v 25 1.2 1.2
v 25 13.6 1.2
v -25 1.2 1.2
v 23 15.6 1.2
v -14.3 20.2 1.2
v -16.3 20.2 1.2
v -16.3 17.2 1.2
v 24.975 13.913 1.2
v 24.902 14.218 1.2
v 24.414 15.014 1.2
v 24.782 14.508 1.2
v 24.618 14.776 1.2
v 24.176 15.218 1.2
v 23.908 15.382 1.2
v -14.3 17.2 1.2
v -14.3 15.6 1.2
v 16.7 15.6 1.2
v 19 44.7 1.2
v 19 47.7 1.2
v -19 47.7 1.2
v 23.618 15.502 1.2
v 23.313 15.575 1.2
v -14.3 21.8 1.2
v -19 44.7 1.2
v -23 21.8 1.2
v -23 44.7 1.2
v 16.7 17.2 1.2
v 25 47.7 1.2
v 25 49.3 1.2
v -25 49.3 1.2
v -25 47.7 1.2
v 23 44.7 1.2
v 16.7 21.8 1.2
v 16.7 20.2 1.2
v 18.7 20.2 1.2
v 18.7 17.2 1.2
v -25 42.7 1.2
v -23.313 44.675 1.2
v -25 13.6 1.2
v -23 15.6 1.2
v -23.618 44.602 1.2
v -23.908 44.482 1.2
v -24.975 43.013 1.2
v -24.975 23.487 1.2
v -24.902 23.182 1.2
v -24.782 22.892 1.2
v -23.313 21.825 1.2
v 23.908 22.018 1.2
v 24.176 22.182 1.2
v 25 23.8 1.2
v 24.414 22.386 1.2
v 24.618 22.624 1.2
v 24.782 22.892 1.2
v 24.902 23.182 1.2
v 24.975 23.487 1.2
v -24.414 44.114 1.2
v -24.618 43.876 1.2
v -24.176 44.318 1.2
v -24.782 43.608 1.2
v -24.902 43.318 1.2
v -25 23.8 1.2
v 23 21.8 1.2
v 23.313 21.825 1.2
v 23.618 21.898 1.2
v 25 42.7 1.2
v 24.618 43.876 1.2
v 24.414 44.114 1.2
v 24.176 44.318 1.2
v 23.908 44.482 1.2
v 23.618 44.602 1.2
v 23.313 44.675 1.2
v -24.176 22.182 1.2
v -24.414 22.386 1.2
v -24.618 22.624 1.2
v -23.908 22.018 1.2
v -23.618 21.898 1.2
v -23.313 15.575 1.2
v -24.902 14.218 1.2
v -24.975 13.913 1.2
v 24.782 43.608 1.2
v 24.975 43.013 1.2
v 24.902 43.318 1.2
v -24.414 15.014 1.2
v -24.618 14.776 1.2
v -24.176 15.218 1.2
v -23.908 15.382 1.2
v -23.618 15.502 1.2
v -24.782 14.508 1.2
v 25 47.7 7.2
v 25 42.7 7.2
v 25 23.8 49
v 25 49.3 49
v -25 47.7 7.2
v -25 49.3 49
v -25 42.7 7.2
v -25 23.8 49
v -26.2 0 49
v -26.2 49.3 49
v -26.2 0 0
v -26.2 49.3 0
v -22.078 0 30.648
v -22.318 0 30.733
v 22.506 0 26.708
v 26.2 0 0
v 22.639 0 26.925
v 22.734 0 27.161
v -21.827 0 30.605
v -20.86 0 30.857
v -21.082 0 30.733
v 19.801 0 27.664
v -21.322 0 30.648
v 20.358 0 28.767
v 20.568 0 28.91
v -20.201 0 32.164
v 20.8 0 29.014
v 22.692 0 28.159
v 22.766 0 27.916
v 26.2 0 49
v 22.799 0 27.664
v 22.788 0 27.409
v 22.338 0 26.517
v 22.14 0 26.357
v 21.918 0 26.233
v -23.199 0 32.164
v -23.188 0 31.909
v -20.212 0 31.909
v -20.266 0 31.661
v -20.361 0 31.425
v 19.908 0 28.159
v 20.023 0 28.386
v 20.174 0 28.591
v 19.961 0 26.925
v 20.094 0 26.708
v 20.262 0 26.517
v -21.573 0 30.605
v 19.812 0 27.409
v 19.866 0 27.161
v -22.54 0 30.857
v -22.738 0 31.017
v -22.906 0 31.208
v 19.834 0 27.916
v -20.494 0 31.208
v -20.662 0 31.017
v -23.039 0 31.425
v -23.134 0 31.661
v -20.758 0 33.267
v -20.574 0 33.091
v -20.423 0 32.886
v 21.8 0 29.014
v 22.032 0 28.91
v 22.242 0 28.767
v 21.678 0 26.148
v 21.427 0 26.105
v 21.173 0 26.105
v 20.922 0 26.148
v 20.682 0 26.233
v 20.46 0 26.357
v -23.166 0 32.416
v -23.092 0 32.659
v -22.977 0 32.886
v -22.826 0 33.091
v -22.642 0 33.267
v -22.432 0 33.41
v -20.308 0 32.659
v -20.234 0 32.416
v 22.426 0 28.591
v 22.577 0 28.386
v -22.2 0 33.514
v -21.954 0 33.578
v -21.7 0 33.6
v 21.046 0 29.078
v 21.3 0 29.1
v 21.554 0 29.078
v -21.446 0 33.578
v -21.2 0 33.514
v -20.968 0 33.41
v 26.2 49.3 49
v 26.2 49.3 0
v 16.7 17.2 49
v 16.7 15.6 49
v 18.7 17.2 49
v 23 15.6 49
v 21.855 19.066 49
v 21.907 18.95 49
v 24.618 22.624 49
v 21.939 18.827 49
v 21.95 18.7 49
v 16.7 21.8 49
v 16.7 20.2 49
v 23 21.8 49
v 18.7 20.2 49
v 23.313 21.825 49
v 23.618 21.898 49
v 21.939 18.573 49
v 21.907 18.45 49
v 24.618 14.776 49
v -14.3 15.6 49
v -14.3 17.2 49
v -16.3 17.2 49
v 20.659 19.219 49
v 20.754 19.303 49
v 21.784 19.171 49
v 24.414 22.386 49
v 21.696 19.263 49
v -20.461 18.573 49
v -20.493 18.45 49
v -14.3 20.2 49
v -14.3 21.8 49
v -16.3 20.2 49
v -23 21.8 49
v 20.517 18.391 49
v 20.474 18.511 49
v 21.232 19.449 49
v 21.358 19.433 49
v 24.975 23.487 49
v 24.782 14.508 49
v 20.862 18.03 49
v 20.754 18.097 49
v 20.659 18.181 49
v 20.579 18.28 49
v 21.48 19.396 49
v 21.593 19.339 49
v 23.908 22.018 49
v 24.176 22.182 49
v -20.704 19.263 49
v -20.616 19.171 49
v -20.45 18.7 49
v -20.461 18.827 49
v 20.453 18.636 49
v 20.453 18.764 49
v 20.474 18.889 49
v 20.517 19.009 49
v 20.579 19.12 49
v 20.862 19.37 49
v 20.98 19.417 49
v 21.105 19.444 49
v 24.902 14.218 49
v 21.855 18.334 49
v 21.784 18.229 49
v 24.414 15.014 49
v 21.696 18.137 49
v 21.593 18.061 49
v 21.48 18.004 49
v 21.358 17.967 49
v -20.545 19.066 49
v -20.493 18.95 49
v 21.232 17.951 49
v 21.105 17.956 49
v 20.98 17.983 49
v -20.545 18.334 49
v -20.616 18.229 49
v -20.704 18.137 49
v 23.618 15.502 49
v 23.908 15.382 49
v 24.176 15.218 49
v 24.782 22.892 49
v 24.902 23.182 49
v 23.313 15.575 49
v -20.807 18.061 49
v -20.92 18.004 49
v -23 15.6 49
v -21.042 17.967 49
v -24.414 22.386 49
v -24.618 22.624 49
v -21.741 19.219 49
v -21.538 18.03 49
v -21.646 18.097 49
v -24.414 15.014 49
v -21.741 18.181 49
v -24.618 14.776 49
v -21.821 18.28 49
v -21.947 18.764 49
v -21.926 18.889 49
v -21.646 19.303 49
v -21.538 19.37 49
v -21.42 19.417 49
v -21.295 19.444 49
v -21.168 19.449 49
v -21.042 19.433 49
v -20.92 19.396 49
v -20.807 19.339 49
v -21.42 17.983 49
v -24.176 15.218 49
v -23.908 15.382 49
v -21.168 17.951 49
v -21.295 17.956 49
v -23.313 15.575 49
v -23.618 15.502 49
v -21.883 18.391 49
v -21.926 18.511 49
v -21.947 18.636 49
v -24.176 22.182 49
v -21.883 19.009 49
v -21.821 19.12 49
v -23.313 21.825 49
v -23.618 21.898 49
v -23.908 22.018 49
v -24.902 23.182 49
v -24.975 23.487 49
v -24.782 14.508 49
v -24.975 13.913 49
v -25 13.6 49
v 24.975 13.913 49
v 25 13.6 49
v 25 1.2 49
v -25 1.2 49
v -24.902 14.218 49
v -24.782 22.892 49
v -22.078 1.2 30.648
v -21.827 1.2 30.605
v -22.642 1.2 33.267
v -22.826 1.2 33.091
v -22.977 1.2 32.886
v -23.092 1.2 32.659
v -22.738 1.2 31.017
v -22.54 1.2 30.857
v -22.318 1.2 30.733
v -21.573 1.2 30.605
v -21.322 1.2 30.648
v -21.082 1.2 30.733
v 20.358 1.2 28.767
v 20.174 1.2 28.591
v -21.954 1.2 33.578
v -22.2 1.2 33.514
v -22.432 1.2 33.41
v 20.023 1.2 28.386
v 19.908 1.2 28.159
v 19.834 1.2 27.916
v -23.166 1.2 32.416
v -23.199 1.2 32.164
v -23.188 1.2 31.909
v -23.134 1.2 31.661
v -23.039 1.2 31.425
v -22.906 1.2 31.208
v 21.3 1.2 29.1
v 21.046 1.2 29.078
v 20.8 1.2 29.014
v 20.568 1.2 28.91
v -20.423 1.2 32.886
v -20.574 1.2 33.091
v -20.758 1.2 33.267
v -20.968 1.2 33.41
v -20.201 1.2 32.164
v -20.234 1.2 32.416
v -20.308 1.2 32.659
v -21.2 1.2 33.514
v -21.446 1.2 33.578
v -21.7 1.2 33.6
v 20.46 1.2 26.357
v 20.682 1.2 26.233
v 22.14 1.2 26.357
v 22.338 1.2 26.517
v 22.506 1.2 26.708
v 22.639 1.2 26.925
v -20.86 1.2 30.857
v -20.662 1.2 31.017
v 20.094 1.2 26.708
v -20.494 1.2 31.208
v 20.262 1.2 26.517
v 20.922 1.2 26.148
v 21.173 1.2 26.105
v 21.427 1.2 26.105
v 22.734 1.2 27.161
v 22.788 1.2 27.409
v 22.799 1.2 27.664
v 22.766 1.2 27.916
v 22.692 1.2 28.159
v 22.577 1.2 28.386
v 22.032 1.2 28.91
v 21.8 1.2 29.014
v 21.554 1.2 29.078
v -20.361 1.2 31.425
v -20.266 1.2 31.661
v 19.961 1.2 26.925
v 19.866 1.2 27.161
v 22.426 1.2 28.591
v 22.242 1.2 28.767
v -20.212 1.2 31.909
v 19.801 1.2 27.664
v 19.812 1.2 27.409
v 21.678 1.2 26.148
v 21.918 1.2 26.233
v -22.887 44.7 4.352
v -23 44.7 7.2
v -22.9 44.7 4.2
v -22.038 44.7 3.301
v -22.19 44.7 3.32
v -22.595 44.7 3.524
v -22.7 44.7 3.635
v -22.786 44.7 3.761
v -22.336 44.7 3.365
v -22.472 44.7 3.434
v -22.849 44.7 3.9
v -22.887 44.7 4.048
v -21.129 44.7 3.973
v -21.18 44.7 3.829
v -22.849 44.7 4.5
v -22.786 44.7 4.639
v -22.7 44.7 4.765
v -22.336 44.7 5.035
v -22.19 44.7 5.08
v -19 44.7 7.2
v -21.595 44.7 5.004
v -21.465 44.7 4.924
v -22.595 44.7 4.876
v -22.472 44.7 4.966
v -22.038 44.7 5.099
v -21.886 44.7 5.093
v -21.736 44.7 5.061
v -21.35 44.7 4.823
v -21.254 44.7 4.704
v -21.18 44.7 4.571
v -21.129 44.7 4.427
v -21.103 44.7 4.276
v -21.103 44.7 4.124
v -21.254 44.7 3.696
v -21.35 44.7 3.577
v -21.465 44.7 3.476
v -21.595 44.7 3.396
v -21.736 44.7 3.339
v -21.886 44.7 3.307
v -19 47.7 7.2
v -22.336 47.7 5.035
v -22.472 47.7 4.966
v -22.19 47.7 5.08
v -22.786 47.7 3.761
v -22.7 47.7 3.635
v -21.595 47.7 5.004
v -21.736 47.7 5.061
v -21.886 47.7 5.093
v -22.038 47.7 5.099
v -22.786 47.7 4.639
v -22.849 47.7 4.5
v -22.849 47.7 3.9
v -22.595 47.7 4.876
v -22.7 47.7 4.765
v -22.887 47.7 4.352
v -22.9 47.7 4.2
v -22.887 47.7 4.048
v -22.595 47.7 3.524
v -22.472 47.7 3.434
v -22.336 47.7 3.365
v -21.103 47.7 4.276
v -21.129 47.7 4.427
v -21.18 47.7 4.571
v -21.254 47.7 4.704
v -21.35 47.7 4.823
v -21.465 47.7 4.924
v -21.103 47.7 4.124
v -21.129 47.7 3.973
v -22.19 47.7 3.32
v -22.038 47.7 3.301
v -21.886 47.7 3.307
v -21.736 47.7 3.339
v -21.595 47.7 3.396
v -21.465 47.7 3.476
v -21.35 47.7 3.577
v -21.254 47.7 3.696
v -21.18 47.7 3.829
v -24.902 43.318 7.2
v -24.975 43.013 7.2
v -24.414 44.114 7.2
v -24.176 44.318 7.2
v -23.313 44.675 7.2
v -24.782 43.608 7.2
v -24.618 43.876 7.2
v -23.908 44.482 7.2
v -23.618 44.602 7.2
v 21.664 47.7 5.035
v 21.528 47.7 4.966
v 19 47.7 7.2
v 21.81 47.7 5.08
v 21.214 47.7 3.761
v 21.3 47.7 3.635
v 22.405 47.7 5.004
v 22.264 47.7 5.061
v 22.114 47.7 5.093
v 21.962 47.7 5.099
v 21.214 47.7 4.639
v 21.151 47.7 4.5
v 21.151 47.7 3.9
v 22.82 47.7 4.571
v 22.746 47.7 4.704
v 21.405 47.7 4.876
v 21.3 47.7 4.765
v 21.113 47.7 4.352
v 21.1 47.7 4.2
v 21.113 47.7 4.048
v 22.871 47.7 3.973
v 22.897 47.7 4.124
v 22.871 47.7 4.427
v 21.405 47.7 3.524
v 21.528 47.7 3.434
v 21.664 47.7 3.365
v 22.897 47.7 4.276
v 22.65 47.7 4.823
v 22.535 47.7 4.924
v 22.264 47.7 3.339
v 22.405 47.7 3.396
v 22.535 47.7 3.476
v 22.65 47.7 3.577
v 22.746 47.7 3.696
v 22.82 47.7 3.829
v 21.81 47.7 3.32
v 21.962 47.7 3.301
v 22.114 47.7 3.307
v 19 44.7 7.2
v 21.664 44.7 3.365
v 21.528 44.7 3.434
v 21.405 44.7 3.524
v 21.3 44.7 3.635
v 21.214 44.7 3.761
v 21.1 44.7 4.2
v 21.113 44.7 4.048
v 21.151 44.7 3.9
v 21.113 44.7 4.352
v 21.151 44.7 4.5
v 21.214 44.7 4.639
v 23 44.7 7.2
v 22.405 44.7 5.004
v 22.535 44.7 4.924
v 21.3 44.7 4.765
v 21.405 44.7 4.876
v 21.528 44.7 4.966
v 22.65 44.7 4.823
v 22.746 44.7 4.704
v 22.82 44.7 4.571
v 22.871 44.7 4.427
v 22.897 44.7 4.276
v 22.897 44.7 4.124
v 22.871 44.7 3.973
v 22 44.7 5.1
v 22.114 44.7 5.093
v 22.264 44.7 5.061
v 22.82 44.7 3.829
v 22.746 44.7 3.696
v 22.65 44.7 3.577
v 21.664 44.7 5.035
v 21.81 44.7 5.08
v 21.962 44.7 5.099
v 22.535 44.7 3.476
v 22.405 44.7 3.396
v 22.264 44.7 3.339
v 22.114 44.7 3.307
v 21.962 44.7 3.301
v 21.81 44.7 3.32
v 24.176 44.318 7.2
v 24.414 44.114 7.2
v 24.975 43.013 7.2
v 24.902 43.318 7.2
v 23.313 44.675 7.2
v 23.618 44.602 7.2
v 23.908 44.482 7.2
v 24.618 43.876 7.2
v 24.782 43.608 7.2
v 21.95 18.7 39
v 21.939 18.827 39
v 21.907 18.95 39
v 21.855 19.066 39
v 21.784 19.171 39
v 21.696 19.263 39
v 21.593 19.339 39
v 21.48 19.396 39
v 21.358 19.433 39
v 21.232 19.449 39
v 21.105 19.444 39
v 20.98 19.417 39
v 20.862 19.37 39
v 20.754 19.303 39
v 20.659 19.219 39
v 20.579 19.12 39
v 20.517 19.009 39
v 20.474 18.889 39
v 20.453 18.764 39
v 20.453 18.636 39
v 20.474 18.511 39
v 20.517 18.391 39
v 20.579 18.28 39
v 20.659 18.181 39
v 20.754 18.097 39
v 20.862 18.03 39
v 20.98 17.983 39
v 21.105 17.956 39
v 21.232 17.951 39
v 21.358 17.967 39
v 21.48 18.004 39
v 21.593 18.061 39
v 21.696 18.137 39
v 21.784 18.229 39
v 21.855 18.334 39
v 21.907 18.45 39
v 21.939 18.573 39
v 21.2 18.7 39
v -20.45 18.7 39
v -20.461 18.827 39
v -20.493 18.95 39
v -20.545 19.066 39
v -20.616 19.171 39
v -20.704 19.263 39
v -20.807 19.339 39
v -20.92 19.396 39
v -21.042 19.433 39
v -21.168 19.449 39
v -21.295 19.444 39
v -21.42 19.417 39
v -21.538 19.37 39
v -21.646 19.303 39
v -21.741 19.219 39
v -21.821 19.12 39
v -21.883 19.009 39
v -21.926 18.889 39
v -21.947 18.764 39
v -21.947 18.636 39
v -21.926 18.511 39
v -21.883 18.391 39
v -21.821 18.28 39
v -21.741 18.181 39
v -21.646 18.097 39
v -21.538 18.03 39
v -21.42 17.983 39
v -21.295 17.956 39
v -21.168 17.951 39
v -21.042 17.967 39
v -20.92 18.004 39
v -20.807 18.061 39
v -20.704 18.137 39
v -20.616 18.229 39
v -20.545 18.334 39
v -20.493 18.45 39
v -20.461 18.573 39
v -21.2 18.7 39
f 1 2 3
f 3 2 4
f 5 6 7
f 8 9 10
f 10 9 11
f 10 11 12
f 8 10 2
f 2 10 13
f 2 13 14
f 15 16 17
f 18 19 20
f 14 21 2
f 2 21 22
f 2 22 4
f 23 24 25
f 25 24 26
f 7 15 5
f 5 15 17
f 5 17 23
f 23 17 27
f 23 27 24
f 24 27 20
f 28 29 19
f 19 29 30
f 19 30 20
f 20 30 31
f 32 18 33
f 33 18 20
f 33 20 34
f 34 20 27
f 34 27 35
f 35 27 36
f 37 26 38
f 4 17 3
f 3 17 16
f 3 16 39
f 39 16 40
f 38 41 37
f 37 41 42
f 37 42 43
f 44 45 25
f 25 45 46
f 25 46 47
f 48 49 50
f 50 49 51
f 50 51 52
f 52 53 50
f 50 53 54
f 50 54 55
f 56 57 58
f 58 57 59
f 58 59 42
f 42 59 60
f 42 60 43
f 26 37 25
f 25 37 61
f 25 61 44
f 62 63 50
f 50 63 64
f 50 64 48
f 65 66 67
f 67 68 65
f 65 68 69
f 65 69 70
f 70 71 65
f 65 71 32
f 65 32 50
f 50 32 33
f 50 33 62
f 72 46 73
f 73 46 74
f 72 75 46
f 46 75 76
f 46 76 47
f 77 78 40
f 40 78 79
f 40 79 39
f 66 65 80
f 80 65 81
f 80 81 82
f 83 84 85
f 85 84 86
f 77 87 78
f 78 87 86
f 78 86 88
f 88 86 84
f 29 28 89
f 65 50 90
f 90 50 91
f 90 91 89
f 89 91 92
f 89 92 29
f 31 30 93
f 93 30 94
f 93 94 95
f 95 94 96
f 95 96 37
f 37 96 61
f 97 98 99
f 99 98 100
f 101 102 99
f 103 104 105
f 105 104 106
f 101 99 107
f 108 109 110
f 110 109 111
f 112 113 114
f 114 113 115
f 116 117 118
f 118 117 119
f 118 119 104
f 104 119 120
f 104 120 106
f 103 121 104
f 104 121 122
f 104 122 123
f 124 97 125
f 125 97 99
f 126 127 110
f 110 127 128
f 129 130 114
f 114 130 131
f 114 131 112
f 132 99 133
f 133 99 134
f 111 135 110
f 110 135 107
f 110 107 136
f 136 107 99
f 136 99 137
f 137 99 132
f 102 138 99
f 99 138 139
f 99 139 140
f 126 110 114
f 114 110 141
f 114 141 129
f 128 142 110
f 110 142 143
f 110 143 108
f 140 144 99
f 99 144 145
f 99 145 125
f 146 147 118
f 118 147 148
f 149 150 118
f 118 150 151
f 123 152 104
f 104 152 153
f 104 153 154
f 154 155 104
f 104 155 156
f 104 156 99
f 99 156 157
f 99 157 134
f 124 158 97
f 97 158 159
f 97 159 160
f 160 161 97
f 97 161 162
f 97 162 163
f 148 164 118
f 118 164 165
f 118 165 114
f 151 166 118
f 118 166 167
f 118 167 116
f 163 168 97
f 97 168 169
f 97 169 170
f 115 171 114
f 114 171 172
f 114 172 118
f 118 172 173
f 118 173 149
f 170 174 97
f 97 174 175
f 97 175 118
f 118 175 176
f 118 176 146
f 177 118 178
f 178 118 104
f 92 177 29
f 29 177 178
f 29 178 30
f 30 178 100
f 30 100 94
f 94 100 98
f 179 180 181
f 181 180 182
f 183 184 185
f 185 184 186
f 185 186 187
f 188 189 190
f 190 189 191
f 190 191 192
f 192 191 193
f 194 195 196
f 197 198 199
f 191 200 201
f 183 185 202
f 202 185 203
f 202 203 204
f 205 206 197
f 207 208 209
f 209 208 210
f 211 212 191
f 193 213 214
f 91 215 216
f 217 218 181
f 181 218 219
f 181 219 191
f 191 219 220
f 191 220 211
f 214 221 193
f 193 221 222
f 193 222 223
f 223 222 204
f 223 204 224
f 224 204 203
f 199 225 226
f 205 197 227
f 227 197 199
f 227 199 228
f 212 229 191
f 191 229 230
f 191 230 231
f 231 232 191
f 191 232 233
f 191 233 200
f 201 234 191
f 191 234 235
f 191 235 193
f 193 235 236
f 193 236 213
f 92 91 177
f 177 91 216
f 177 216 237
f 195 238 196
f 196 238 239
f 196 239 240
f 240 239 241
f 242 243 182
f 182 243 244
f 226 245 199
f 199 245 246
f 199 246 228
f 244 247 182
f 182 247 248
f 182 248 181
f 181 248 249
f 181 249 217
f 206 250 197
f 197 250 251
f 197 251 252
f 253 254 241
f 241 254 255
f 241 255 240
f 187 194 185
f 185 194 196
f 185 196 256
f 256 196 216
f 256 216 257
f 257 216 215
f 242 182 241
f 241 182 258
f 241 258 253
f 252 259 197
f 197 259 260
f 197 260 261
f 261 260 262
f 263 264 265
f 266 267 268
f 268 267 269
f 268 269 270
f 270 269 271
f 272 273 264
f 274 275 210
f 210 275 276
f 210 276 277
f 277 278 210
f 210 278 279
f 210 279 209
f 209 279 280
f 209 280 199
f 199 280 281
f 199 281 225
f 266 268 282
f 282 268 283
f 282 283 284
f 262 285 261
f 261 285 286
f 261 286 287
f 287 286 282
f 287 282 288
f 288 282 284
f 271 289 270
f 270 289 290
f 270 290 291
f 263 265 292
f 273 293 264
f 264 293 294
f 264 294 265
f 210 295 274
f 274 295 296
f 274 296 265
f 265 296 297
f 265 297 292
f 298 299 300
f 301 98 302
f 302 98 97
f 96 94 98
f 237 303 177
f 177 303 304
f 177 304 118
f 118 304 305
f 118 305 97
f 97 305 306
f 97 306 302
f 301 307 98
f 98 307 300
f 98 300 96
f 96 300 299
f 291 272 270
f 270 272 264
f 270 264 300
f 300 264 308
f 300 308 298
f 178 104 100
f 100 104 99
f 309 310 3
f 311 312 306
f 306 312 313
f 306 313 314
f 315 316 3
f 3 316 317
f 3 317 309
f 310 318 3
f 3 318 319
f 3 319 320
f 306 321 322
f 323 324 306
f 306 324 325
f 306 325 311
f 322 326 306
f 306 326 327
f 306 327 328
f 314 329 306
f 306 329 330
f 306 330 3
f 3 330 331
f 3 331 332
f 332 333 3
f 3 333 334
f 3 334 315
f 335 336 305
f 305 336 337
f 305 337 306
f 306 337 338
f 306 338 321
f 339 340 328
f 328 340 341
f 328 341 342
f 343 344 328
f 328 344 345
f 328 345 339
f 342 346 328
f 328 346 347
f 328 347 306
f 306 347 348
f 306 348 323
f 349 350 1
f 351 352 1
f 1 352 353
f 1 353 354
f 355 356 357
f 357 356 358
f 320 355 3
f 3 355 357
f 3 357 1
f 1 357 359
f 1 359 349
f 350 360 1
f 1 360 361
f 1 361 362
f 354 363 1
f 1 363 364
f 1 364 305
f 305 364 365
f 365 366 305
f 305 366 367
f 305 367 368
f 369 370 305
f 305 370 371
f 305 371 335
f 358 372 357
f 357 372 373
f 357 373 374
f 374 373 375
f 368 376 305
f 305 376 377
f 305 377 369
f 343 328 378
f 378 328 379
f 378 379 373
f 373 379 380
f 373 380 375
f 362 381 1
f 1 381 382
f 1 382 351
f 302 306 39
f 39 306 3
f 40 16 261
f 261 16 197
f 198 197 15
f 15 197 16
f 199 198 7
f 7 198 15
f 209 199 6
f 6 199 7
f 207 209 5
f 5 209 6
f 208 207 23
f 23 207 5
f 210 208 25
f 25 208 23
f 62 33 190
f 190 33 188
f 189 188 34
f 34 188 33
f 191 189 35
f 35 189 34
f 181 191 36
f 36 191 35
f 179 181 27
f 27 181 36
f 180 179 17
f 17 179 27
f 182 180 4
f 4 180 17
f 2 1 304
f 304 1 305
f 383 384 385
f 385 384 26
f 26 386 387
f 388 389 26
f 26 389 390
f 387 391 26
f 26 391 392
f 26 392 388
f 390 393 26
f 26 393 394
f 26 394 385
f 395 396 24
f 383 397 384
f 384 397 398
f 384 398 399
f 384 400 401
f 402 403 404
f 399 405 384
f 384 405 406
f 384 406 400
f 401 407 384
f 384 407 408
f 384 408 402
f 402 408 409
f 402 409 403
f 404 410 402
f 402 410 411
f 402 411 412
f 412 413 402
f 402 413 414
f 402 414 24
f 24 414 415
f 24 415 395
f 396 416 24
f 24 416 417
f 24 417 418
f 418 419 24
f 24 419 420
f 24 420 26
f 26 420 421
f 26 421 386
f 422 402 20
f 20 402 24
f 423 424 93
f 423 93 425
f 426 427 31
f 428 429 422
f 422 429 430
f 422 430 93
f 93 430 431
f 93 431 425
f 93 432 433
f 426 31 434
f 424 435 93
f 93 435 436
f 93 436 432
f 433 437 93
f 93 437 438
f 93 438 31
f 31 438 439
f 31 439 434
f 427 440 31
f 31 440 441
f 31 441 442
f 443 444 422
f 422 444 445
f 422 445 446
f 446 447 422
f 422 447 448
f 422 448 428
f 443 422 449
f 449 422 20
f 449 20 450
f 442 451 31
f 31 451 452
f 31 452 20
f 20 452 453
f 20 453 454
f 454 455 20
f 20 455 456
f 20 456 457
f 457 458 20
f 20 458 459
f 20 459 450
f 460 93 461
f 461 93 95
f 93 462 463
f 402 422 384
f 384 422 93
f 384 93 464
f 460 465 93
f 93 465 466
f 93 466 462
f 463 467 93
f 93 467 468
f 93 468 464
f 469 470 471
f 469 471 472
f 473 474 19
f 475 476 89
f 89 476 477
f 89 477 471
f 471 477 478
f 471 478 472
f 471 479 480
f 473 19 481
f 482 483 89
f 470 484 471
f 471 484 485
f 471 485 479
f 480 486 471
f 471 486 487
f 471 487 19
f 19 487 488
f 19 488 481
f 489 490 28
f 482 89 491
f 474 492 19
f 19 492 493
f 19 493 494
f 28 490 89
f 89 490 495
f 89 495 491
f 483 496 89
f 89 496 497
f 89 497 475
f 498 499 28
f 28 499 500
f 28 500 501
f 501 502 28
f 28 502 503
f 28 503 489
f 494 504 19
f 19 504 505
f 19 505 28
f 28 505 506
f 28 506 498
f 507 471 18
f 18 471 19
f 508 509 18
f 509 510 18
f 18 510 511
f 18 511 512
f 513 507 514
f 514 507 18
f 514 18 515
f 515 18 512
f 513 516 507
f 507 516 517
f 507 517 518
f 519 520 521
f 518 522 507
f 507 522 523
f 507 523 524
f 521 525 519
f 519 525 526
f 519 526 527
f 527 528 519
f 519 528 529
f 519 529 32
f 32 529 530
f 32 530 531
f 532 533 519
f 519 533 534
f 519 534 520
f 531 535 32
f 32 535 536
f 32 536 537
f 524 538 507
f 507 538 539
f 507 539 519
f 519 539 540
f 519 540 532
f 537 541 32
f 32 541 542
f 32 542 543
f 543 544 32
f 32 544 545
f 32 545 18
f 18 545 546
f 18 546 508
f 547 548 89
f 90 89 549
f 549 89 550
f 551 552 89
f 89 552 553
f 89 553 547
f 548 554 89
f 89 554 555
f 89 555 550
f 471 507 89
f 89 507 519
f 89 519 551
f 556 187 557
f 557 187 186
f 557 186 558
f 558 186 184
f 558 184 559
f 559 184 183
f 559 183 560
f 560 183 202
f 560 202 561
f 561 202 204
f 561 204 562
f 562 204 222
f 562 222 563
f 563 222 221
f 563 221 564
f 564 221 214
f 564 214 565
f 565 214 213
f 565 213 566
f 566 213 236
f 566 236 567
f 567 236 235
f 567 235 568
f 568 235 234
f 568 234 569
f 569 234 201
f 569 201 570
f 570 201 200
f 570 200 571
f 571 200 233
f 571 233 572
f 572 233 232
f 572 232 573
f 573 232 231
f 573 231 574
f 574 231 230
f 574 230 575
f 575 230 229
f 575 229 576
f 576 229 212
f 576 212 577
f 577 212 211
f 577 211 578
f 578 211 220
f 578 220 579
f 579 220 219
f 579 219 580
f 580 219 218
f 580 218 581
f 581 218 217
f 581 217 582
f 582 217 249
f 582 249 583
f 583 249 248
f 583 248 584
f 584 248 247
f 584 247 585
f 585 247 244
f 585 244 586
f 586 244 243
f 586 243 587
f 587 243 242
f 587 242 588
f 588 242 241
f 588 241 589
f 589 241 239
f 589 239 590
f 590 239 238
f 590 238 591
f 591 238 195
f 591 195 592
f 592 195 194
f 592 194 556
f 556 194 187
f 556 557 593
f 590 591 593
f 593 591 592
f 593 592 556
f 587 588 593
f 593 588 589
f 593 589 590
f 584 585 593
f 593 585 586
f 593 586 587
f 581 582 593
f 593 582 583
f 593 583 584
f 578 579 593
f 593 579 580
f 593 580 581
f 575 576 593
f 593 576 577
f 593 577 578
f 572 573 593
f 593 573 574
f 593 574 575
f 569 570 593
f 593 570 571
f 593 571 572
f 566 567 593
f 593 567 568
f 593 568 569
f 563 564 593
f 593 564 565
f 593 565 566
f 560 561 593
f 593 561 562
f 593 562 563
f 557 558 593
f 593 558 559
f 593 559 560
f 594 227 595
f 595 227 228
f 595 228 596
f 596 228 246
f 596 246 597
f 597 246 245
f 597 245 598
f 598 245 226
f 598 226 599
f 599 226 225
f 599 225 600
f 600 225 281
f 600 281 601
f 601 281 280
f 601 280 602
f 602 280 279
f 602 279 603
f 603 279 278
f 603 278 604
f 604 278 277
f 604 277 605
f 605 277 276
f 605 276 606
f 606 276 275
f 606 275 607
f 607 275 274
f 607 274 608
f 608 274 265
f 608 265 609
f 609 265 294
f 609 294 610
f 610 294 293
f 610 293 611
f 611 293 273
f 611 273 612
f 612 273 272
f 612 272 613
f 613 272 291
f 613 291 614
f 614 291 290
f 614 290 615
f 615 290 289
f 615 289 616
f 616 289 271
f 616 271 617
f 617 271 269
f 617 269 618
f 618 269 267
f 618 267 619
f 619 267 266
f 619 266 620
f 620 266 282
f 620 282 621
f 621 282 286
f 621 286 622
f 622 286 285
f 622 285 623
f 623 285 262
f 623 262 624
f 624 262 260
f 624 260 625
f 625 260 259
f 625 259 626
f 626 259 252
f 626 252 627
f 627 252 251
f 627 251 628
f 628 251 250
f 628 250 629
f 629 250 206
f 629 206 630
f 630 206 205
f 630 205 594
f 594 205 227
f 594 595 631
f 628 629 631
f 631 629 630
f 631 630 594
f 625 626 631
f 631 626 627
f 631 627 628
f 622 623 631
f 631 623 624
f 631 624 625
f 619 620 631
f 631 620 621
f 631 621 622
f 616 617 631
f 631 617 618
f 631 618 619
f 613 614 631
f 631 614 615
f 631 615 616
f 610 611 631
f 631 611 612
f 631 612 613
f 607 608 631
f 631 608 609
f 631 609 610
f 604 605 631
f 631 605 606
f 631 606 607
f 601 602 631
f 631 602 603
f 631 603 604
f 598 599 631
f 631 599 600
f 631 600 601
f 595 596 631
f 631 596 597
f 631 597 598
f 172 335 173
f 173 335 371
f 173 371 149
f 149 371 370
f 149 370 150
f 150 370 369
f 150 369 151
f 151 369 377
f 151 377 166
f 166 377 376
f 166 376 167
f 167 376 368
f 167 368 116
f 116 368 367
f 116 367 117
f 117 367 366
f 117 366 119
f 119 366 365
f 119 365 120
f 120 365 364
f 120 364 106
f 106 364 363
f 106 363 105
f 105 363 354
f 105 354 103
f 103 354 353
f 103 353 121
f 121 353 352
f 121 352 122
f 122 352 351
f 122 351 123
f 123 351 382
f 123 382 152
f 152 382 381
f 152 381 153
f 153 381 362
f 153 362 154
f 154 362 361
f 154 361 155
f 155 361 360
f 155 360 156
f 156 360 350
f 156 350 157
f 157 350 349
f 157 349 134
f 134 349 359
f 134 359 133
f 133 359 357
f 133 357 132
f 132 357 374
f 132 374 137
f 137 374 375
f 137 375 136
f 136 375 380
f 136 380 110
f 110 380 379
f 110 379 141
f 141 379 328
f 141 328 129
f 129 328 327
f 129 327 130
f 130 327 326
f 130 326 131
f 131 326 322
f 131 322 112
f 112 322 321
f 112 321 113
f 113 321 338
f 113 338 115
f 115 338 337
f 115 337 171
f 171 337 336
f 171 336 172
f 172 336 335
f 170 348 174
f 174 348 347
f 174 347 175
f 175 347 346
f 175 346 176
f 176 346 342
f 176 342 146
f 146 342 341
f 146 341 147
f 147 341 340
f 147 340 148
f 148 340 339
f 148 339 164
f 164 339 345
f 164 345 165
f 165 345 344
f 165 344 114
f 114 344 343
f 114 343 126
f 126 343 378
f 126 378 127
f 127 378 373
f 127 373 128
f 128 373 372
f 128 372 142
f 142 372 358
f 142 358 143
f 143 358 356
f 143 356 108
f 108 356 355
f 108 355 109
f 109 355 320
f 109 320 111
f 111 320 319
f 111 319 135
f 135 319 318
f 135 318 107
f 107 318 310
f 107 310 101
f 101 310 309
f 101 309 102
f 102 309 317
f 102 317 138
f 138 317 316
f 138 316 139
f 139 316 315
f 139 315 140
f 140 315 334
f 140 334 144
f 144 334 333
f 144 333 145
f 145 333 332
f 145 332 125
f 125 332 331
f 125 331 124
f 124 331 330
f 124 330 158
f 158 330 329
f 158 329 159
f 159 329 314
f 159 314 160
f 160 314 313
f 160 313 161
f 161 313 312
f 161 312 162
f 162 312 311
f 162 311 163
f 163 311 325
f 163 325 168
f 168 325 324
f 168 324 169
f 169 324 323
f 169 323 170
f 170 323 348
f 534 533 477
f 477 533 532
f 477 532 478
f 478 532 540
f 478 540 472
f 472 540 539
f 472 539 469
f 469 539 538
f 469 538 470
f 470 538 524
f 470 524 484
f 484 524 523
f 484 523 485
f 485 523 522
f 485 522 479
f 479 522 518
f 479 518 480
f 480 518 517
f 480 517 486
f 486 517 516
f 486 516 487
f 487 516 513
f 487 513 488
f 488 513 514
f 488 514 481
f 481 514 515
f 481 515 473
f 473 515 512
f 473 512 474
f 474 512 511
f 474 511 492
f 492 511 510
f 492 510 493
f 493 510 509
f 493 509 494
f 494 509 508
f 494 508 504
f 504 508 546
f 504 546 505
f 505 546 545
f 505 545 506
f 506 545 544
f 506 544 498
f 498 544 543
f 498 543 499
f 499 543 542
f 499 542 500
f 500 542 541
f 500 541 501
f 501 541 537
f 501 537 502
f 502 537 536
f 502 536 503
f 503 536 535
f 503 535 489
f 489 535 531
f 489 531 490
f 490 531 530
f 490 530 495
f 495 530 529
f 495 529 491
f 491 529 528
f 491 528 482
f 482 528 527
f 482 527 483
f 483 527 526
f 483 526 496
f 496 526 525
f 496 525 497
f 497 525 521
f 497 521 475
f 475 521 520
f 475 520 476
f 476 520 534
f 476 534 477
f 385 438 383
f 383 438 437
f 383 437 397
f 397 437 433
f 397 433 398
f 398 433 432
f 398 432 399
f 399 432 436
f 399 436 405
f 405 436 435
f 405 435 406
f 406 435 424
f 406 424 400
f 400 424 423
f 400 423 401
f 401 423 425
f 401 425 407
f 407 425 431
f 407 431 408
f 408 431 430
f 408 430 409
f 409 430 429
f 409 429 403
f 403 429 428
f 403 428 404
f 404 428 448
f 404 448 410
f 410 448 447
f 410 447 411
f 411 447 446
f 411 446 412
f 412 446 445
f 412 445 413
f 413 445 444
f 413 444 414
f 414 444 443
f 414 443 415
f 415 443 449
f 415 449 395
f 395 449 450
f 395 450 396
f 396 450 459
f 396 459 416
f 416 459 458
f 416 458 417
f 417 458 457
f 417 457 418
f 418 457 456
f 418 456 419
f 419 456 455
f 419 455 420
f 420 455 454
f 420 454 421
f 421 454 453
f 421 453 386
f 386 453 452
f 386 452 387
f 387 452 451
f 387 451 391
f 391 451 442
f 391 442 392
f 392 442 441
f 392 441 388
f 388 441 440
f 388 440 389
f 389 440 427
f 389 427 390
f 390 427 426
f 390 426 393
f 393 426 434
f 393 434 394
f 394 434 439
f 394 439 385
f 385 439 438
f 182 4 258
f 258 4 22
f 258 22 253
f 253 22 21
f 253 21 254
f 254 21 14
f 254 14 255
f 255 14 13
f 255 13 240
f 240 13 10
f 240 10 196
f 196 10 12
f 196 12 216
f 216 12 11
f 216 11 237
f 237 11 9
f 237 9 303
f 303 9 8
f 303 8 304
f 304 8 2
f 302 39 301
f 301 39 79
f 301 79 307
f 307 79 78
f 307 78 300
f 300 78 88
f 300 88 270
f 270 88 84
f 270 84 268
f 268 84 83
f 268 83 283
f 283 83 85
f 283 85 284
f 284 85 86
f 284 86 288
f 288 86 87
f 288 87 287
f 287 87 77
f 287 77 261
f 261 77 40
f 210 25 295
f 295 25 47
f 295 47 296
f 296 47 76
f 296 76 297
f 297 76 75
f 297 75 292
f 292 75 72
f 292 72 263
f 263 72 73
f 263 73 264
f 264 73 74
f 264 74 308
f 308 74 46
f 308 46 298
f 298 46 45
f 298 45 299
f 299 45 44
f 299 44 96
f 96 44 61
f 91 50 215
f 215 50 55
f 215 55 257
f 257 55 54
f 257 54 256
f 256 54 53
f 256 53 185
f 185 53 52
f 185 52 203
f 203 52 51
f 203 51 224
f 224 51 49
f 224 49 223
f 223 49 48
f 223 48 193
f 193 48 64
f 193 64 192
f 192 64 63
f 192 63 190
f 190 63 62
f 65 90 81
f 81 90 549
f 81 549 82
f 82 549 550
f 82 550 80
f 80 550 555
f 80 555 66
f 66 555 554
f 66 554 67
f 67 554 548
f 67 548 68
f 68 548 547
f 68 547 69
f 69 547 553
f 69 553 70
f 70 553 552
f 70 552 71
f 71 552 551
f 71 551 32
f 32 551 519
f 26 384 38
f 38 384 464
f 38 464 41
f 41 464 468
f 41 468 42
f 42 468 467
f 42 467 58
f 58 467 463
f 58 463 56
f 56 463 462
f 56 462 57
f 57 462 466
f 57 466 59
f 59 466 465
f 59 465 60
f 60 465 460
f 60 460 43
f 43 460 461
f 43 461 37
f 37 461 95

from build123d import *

# Parameters (mm, degrees)
SKETCH1_W           = 52.4
SKETCH1_H           = 49.3
BOSS_EXTRUDE1_DEPTH = 49
CUT_EXTRUDE1_DEPTH  = 47.8
SKETCH3_W           = 6
SKETCH3_H           = 3
BOSS_EXTRUDE2_DEPTH = 6
SKETCH4_R           = 0.75
CUT_EXTRUDE2_DEPTH  = 10
SKETCH5_R           = 1.5
CUT_EXTRUDE3_DEPTH  = 74.491836281
SKETCH6_R           = 0.9
CUT_EXTRUDE4_DEPTH  = 5
FILLET1_R           = 2


with BuildPart() as part:
    # Sketch1 → Boss-Extrude1 (new body)
    with BuildSketch(Plane.XY):
        with Locations((0, 24.65)):
            Rectangle(SKETCH1_W, SKETCH1_H)
    extrude(amount=BOSS_EXTRUDE1_DEPTH)

    # Sketch2 → Cut-Extrude1 (cut)
    with BuildSketch(Plane.XY.offset(49)):
        Polygon((25, 1.2), (25, 15.6), (16.7, 15.6), (16.7, 17.2), (18.7, 17.2), (18.7, 20.2), (16.7, 20.2), (16.7, 21.8), (25, 21.8), (25, 49.3), (-25, 49.3), (-25, 21.8), (-14.3, 21.8), (-14.3, 20.2), (-16.3, 20.2), (-16.3, 17.2), (-14.3, 17.2), (-14.3, 15.6), (-25, 15.6), (-25, 1.2), align=None)
    extrude(amount=-CUT_EXTRUDE1_DEPTH, mode=Mode.SUBTRACT)

    # Sketch3 → Boss-Extrude2 (add)
    with BuildSketch(Plane.XY.offset(1.2)):
        with Locations((-22, 46.2)):
            Rectangle(SKETCH3_W, SKETCH3_H)
        with Locations((22, 46.2)):
            Rectangle(SKETCH3_W, SKETCH3_H)
    extrude(amount=BOSS_EXTRUDE2_DEPTH)

    # Sketch4 → Cut-Extrude2 (cut)
    with BuildSketch(Plane.XY.offset(49)):
        with Locations((-21.2, 18.7)):
            Circle(SKETCH4_R)
        with Locations((21.2, 18.7)):
            Circle(SKETCH4_R)
    extrude(amount=-CUT_EXTRUDE2_DEPTH, mode=Mode.SUBTRACT)

    # Sketch5 → Cut-Extrude3 (cut, through all)
    with BuildSketch(Plane(origin=(0, 1.2, 0), x_dir=(1, 0, 0), z_dir=(0, 1, 0))):
        with Locations(Location((-21.7, -32.1, 0), (0, 0, 270))):
            Circle(SKETCH5_R)
        with Locations(Location((21.3, -27.6, 0), (0, 0, 270))):
            Circle(SKETCH5_R)
    extrude(amount=-CUT_EXTRUDE3_DEPTH, mode=Mode.SUBTRACT)

    # Sketch6 → Cut-Extrude4 (cut)
    with BuildSketch(Plane(origin=(0, 47.7, 0), x_dir=(1, 0, 0), z_dir=(0, 1, 0))):
        with Locations(Location((22, -4.2, 0), (0, 0, 180))):
            Circle(SKETCH6_R)
        with Locations(Location((-22, -4.2, 0), (0, 0, 180))):
            Circle(SKETCH6_R)
    extrude(amount=-CUT_EXTRUDE4_DEPTH, mode=Mode.SUBTRACT)

    # Fillet1
    fillet1_edges = [part.edges().sort_by_distance(p)[0] for p in [
        (-25, 15.6, 25.1),
        (-25, 21.8, 25.1),
        (25, 21.8, 25.1),
        (25, 15.6, 25.1),
        (-25, 44.7, 4.2),
        (25, 44.7, 4.2),
    ]]
    fillet(fillet1_edges, radius=FILLET1_R)


solid = part.part
